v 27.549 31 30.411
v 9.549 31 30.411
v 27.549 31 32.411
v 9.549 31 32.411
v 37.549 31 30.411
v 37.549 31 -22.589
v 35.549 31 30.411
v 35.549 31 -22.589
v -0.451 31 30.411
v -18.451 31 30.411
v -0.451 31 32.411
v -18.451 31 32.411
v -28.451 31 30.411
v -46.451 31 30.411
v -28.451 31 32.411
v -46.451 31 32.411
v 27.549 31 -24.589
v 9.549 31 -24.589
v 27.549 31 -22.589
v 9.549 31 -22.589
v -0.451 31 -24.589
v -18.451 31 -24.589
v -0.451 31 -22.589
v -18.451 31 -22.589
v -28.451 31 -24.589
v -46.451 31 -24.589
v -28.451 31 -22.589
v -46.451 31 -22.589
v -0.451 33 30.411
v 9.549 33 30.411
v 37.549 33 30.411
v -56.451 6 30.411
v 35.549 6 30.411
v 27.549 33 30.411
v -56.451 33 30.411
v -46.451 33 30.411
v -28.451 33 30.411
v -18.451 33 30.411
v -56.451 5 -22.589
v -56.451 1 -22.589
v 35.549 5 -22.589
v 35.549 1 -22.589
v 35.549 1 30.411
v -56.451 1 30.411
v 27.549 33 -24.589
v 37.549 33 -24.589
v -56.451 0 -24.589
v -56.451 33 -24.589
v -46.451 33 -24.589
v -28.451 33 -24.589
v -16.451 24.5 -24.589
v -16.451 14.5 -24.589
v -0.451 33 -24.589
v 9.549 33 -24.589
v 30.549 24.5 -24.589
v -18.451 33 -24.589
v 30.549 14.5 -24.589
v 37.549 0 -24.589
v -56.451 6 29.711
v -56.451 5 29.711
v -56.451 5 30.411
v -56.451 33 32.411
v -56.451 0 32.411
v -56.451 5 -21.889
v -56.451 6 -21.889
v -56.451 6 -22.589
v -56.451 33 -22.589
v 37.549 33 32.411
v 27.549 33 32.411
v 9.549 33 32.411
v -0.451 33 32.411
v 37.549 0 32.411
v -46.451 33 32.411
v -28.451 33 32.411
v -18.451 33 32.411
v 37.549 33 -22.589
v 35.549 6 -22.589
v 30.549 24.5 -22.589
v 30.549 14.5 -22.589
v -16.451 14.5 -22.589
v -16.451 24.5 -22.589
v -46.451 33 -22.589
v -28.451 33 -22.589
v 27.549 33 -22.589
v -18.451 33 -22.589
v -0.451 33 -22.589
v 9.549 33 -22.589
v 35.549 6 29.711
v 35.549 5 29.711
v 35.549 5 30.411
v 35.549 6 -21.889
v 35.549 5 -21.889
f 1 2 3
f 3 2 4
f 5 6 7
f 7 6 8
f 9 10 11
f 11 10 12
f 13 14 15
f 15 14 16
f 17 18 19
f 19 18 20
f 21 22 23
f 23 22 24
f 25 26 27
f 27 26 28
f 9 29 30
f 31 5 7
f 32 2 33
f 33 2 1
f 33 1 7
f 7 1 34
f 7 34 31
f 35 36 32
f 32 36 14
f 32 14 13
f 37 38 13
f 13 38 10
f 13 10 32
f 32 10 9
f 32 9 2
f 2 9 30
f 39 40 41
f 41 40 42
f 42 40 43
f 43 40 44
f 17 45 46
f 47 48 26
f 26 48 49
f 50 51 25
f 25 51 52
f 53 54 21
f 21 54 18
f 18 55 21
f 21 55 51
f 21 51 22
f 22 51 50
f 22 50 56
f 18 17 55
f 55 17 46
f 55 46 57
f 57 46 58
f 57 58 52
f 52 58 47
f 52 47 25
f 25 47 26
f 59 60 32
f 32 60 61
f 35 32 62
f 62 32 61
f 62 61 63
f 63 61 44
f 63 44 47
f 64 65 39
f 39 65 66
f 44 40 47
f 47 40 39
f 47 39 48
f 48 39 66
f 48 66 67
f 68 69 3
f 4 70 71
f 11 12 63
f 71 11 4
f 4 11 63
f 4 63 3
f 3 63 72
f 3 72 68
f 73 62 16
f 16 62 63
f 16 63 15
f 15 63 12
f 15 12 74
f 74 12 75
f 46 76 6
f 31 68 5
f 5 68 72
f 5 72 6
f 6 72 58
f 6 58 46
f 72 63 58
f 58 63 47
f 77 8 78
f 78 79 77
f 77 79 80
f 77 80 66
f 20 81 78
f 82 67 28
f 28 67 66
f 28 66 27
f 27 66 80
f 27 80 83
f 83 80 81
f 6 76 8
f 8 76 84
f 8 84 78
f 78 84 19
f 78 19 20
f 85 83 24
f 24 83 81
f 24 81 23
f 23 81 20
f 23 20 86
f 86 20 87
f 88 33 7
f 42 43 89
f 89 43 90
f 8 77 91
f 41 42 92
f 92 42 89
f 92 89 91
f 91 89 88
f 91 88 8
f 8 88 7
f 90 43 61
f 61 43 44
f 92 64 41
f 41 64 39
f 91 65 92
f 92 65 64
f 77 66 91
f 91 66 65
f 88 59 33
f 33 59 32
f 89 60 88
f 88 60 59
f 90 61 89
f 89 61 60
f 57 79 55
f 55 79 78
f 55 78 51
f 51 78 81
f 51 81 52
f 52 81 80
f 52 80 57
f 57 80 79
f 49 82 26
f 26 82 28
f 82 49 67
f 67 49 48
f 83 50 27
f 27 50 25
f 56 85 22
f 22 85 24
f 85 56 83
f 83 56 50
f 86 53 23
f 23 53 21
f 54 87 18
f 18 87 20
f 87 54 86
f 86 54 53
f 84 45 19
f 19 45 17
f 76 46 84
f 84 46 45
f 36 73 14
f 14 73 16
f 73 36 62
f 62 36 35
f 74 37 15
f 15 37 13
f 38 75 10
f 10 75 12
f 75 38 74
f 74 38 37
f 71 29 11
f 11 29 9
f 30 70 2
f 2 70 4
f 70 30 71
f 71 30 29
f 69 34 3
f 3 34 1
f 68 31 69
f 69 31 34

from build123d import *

# Parameters (mm, degrees)
SKETCH1_W           = 94
SKETCH1_H           = 57
BOSS_EXTRUDE1_DEPTH = 1
BOSS_EXTRUDE3_DEPTH = 30
SKETCH5_W           = 0.7
SKETCH5_H           = 1
BOSS_EXTRUDE4_DEPTH = 92
SKETCH6_W           = 47
SKETCH6_H           = 10
CUT_EXTRUDE2_DEPTH  = 30
SKETCH7_W           = 10
SKETCH7_H           = 2
BOSS_EXTRUDE5_DEPTH = 2


with BuildPart() as part:
    # Sketch1 → Boss-Extrude1 (new body)
    with BuildSketch(Plane(origin=(0, 0, 0), x_dir=(1, 0, 0), z_dir=(0, 1, 0))):
        with Locations((-9.450515464, -3.911340206)):
            Rectangle(SKETCH1_W, SKETCH1_H)
    extrude(amount=BOSS_EXTRUDE1_DEPTH)

    # Sketch2 → Boss-Extrude3 (add)
    with BuildSketch(Plane(origin=(0, 1, 0), x_dir=(1, 0, 0), z_dir=(0, 1, 0))):
        Polygon((-56.450515464, 24.588659794), (37.549484536, 24.588659794), (37.549484536, -32.411340206), (-56.450515464, -32.411340206), (-56.450515464, -30.411340206), (-54.450515464, -30.411340206), (35.549484536, -30.411340206), (35.549484536, 22.588659794), (-54.450515464, 22.588659794), (-56.450515464, 22.588659794), align=None)
    extrude(amount=BOSS_EXTRUDE3_DEPTH)

    # Sketch5 → Boss-Extrude4 (add)
    with BuildSketch(Plane.ZY.offset(56.450515464)):
        with Locations((-22.238659794, 5.5)):
            Rectangle(SKETCH5_W, SKETCH5_H)
        with Locations((30.061340206, 5.5)):
            Rectangle(SKETCH5_W, SKETCH5_H)
    extrude(amount=-BOSS_EXTRUDE4_DEPTH)

    # Sketch6 → Cut-Extrude2 (cut)
    with BuildSketch(Plane(origin=(0, 0, -24.588659794), x_dir=(-1, 0, 0), z_dir=(0, 0, -1))):
        with Locations((-7.049484536, 19.5)):
            Rectangle(SKETCH6_W, SKETCH6_H)
    extrude(amount=-CUT_EXTRUDE2_DEPTH, mode=Mode.SUBTRACT)

    # Sketch7 → Boss-Extrude5 (add)
    with BuildSketch(Plane(origin=(0, 31, 0), x_dir=(1, 0, 0), z_dir=(0, 1, 0))):
        with Locations((-51.450515464, 23.588659794)):
            Rectangle(SKETCH7_W, SKETCH7_H)
        with Locations((-23.450515464, 23.588659794)):
            Rectangle(SKETCH7_W, SKETCH7_H)
        with Locations((4.549484536, 23.588659794)):
            Rectangle(SKETCH7_W, SKETCH7_H)
        with Locations((32.549484536, 23.588659794)):
            Rectangle(SKETCH7_W, SKETCH7_H)
        with Locations((-51.450515464, -31.411340206)):
            Rectangle(SKETCH7_W, SKETCH7_H)
        with Locations((-23.450515464, -31.411340206)):
            Rectangle(SKETCH7_W, SKETCH7_H)
        with Locations((4.549484536, -31.411340206)):
            Rectangle(SKETCH7_W, SKETCH7_H)
        with Locations((32.549484536, -31.411340206)):
            Rectangle(SKETCH7_W, SKETCH7_H)
    extrude(amount=BOSS_EXTRUDE5_DEPTH)


solid = part.part
